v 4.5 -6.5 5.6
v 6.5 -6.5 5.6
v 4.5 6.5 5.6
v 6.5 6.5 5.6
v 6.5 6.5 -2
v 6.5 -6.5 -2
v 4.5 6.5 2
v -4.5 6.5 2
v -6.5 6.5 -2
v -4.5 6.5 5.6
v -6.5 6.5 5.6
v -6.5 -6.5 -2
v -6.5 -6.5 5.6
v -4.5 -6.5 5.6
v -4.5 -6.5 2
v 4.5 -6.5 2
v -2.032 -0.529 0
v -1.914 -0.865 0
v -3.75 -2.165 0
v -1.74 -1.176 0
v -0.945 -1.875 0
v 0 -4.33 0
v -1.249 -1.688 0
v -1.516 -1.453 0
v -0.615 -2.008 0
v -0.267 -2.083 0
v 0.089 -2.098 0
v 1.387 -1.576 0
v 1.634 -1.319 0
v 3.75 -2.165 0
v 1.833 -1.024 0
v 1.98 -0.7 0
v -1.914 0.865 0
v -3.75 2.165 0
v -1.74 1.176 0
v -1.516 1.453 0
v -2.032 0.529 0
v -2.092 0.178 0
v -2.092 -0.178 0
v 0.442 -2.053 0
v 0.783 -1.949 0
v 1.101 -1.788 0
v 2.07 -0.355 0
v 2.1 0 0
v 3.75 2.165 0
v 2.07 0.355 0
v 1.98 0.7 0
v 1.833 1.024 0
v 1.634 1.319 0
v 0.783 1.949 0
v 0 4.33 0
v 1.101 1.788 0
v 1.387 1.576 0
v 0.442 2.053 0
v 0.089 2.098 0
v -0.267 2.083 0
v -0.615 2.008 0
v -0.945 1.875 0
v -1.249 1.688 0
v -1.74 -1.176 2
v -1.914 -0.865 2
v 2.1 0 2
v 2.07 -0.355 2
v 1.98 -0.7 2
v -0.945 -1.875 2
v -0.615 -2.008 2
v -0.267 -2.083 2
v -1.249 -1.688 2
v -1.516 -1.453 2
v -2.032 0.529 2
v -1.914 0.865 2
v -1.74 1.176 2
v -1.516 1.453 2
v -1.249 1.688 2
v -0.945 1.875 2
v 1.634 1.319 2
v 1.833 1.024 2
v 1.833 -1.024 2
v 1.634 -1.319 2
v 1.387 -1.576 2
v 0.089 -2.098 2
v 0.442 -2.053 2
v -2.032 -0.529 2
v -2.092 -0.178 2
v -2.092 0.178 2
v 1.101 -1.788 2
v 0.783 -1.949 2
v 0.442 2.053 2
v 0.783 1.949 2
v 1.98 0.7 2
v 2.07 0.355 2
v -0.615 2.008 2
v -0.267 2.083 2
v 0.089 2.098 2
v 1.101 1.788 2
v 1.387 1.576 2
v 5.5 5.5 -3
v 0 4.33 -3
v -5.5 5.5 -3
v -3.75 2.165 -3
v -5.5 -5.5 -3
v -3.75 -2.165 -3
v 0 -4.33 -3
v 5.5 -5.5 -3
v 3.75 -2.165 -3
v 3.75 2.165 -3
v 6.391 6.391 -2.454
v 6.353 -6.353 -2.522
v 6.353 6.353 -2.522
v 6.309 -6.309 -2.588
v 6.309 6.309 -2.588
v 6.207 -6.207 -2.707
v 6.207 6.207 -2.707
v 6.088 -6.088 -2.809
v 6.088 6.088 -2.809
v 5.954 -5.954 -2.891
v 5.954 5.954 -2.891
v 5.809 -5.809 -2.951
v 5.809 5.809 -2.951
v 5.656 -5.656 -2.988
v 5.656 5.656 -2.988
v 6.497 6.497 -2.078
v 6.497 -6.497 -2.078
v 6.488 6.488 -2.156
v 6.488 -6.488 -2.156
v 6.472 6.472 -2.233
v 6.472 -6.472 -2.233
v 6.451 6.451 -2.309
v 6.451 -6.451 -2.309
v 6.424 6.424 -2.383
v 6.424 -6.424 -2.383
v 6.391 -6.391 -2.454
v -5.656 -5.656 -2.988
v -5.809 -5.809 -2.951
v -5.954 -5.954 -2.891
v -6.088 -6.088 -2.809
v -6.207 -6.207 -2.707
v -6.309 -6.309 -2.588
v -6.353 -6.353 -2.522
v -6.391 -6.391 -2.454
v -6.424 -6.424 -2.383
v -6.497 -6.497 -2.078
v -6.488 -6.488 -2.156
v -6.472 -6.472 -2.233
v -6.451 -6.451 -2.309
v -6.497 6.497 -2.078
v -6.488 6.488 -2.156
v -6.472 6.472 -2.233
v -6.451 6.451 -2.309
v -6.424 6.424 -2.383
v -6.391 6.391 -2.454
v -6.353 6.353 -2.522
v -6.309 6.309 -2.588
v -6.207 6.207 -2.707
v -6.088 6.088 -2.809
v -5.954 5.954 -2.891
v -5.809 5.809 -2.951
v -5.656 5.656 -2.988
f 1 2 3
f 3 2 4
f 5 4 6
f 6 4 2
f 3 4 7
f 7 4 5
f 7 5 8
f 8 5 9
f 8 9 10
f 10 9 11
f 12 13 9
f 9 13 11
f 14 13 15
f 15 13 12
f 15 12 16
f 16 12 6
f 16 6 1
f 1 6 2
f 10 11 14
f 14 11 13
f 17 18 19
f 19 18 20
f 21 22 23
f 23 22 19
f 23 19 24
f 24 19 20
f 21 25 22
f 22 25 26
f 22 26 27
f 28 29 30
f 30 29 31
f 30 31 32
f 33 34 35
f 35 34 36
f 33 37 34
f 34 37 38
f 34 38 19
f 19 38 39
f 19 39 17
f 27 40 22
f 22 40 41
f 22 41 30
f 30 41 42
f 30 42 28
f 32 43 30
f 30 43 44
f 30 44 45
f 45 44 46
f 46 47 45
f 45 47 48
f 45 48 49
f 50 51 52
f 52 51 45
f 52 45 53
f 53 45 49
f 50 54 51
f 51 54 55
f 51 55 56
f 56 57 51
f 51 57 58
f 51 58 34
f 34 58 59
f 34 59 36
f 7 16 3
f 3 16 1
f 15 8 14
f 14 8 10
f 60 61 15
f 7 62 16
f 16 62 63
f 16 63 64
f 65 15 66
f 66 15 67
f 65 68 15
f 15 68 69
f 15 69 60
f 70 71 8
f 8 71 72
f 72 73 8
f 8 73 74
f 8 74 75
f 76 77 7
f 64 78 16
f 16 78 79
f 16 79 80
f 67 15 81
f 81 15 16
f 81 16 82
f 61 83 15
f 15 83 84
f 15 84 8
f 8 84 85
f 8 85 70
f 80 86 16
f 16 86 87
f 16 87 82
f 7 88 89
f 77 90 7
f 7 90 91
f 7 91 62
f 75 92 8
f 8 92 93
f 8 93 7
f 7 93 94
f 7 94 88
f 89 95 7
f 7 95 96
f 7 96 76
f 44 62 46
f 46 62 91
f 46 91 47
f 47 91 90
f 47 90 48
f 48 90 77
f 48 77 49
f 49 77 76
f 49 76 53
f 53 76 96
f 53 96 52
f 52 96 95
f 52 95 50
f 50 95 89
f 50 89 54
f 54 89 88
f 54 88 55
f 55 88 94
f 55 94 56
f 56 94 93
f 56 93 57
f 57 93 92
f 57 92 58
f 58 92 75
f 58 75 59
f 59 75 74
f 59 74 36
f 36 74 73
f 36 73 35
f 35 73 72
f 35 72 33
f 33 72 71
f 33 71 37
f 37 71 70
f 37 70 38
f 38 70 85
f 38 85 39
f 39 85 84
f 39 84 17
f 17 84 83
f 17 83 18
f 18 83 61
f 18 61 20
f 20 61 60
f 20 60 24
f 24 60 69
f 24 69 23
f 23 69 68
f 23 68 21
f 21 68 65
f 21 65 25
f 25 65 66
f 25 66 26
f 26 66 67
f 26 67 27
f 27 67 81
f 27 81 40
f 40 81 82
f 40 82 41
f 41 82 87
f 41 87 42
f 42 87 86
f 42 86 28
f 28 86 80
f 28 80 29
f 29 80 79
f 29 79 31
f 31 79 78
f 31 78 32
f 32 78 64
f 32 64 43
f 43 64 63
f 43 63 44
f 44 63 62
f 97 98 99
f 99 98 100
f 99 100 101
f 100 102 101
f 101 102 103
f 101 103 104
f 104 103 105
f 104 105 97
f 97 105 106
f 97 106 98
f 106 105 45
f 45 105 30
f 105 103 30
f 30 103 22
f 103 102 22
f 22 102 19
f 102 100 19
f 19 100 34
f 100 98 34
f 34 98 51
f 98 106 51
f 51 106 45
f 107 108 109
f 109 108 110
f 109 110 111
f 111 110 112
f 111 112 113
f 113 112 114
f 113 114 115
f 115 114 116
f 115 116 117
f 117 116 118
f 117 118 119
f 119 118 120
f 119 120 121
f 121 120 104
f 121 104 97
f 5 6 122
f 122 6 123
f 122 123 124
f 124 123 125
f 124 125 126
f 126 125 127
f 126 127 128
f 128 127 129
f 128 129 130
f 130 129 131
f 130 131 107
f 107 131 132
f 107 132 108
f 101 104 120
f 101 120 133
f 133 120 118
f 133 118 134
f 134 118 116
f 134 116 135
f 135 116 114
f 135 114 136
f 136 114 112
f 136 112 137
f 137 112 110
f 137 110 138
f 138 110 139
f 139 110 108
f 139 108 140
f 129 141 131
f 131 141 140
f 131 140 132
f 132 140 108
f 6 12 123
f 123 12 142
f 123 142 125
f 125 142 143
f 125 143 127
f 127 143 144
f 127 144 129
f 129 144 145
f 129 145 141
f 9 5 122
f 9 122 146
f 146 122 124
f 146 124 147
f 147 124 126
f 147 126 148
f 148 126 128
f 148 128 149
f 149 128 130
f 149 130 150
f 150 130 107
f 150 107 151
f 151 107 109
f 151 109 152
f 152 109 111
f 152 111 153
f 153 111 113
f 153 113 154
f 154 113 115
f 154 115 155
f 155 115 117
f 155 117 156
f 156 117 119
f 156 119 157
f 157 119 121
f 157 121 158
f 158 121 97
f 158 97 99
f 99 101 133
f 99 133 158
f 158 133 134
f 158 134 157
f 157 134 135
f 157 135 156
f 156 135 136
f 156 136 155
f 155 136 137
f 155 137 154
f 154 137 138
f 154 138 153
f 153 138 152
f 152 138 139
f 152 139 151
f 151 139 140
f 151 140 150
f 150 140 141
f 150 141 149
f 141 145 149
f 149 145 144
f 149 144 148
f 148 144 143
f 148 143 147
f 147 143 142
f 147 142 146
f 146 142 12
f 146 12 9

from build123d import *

# Parameters (mm, degrees)
ESQUISSE1_W             = 13
ESQUISSE1_H             = 13
BOSS_EXTRU_1_DEPTH      = 5.6
ESQUISSE2_W             = 9
ESQUISSE2_H             = 13
ENL_V_MAT_EXTRU_1_DEPTH = 3.6
ESQUISSE3_R             = 2.1
ENL_V_MAT_EXTRU_2_DEPTH = 10.872183143
ESQUISSE4_W             = 13
ESQUISSE4_H             = 13
BOSS_EXTRU_2_DEPTH      = 3
CONG_1_R                = 1


with BuildPart() as part:
    # Esquisse1 → Boss.-Extru.1 (new body)
    with BuildSketch(Plane.XY):
        Rectangle(ESQUISSE1_W, ESQUISSE1_H)
    extrude(amount=BOSS_EXTRU_1_DEPTH)

    # Esquisse2 → Enlèv. mat.-Extru.1 (cut)
    with BuildSketch(Plane.XY.offset(5.6)):
        Rectangle(ESQUISSE2_W, ESQUISSE2_H)
    extrude(amount=-ENL_V_MAT_EXTRU_1_DEPTH, mode=Mode.SUBTRACT)

    # Esquisse3 → Enlèv. mat.-Extru.2 (cut, through all)
    with BuildSketch(Plane.XY.offset(2)):
        Circle(ESQUISSE3_R)
    extrude(amount=-ENL_V_MAT_EXTRU_2_DEPTH, mode=Mode.SUBTRACT)

    # Esquisse4 → Boss.-Extru.2 (add)
    with BuildSketch(Plane(origin=(0, 0, 0), x_dir=(-1, 0, 0), z_dir=(0, 0, -1))):
        Rectangle(ESQUISSE4_W, ESQUISSE4_H)
        Polygon((-3.75, -2.165063509), (0, -4.330127019), (3.75, -2.165063509), (3.75, 2.165063509), (0, 4.330127019), (-3.75, 2.165063509), align=None, mode=Mode.SUBTRACT)
    extrude(amount=BOSS_EXTRU_2_DEPTH)

    # Congé1
    cong_1_edges = [part.edges().sort_by_distance(p)[0] for p in [
        (6.5, 0, -3),
        (0, -6.5, -3),
        (-6.5, 0, -3),
        (0, 6.5, -3),
    ]]
    fillet(cong_1_edges, radius=CONG_1_R)


solid = part.part
